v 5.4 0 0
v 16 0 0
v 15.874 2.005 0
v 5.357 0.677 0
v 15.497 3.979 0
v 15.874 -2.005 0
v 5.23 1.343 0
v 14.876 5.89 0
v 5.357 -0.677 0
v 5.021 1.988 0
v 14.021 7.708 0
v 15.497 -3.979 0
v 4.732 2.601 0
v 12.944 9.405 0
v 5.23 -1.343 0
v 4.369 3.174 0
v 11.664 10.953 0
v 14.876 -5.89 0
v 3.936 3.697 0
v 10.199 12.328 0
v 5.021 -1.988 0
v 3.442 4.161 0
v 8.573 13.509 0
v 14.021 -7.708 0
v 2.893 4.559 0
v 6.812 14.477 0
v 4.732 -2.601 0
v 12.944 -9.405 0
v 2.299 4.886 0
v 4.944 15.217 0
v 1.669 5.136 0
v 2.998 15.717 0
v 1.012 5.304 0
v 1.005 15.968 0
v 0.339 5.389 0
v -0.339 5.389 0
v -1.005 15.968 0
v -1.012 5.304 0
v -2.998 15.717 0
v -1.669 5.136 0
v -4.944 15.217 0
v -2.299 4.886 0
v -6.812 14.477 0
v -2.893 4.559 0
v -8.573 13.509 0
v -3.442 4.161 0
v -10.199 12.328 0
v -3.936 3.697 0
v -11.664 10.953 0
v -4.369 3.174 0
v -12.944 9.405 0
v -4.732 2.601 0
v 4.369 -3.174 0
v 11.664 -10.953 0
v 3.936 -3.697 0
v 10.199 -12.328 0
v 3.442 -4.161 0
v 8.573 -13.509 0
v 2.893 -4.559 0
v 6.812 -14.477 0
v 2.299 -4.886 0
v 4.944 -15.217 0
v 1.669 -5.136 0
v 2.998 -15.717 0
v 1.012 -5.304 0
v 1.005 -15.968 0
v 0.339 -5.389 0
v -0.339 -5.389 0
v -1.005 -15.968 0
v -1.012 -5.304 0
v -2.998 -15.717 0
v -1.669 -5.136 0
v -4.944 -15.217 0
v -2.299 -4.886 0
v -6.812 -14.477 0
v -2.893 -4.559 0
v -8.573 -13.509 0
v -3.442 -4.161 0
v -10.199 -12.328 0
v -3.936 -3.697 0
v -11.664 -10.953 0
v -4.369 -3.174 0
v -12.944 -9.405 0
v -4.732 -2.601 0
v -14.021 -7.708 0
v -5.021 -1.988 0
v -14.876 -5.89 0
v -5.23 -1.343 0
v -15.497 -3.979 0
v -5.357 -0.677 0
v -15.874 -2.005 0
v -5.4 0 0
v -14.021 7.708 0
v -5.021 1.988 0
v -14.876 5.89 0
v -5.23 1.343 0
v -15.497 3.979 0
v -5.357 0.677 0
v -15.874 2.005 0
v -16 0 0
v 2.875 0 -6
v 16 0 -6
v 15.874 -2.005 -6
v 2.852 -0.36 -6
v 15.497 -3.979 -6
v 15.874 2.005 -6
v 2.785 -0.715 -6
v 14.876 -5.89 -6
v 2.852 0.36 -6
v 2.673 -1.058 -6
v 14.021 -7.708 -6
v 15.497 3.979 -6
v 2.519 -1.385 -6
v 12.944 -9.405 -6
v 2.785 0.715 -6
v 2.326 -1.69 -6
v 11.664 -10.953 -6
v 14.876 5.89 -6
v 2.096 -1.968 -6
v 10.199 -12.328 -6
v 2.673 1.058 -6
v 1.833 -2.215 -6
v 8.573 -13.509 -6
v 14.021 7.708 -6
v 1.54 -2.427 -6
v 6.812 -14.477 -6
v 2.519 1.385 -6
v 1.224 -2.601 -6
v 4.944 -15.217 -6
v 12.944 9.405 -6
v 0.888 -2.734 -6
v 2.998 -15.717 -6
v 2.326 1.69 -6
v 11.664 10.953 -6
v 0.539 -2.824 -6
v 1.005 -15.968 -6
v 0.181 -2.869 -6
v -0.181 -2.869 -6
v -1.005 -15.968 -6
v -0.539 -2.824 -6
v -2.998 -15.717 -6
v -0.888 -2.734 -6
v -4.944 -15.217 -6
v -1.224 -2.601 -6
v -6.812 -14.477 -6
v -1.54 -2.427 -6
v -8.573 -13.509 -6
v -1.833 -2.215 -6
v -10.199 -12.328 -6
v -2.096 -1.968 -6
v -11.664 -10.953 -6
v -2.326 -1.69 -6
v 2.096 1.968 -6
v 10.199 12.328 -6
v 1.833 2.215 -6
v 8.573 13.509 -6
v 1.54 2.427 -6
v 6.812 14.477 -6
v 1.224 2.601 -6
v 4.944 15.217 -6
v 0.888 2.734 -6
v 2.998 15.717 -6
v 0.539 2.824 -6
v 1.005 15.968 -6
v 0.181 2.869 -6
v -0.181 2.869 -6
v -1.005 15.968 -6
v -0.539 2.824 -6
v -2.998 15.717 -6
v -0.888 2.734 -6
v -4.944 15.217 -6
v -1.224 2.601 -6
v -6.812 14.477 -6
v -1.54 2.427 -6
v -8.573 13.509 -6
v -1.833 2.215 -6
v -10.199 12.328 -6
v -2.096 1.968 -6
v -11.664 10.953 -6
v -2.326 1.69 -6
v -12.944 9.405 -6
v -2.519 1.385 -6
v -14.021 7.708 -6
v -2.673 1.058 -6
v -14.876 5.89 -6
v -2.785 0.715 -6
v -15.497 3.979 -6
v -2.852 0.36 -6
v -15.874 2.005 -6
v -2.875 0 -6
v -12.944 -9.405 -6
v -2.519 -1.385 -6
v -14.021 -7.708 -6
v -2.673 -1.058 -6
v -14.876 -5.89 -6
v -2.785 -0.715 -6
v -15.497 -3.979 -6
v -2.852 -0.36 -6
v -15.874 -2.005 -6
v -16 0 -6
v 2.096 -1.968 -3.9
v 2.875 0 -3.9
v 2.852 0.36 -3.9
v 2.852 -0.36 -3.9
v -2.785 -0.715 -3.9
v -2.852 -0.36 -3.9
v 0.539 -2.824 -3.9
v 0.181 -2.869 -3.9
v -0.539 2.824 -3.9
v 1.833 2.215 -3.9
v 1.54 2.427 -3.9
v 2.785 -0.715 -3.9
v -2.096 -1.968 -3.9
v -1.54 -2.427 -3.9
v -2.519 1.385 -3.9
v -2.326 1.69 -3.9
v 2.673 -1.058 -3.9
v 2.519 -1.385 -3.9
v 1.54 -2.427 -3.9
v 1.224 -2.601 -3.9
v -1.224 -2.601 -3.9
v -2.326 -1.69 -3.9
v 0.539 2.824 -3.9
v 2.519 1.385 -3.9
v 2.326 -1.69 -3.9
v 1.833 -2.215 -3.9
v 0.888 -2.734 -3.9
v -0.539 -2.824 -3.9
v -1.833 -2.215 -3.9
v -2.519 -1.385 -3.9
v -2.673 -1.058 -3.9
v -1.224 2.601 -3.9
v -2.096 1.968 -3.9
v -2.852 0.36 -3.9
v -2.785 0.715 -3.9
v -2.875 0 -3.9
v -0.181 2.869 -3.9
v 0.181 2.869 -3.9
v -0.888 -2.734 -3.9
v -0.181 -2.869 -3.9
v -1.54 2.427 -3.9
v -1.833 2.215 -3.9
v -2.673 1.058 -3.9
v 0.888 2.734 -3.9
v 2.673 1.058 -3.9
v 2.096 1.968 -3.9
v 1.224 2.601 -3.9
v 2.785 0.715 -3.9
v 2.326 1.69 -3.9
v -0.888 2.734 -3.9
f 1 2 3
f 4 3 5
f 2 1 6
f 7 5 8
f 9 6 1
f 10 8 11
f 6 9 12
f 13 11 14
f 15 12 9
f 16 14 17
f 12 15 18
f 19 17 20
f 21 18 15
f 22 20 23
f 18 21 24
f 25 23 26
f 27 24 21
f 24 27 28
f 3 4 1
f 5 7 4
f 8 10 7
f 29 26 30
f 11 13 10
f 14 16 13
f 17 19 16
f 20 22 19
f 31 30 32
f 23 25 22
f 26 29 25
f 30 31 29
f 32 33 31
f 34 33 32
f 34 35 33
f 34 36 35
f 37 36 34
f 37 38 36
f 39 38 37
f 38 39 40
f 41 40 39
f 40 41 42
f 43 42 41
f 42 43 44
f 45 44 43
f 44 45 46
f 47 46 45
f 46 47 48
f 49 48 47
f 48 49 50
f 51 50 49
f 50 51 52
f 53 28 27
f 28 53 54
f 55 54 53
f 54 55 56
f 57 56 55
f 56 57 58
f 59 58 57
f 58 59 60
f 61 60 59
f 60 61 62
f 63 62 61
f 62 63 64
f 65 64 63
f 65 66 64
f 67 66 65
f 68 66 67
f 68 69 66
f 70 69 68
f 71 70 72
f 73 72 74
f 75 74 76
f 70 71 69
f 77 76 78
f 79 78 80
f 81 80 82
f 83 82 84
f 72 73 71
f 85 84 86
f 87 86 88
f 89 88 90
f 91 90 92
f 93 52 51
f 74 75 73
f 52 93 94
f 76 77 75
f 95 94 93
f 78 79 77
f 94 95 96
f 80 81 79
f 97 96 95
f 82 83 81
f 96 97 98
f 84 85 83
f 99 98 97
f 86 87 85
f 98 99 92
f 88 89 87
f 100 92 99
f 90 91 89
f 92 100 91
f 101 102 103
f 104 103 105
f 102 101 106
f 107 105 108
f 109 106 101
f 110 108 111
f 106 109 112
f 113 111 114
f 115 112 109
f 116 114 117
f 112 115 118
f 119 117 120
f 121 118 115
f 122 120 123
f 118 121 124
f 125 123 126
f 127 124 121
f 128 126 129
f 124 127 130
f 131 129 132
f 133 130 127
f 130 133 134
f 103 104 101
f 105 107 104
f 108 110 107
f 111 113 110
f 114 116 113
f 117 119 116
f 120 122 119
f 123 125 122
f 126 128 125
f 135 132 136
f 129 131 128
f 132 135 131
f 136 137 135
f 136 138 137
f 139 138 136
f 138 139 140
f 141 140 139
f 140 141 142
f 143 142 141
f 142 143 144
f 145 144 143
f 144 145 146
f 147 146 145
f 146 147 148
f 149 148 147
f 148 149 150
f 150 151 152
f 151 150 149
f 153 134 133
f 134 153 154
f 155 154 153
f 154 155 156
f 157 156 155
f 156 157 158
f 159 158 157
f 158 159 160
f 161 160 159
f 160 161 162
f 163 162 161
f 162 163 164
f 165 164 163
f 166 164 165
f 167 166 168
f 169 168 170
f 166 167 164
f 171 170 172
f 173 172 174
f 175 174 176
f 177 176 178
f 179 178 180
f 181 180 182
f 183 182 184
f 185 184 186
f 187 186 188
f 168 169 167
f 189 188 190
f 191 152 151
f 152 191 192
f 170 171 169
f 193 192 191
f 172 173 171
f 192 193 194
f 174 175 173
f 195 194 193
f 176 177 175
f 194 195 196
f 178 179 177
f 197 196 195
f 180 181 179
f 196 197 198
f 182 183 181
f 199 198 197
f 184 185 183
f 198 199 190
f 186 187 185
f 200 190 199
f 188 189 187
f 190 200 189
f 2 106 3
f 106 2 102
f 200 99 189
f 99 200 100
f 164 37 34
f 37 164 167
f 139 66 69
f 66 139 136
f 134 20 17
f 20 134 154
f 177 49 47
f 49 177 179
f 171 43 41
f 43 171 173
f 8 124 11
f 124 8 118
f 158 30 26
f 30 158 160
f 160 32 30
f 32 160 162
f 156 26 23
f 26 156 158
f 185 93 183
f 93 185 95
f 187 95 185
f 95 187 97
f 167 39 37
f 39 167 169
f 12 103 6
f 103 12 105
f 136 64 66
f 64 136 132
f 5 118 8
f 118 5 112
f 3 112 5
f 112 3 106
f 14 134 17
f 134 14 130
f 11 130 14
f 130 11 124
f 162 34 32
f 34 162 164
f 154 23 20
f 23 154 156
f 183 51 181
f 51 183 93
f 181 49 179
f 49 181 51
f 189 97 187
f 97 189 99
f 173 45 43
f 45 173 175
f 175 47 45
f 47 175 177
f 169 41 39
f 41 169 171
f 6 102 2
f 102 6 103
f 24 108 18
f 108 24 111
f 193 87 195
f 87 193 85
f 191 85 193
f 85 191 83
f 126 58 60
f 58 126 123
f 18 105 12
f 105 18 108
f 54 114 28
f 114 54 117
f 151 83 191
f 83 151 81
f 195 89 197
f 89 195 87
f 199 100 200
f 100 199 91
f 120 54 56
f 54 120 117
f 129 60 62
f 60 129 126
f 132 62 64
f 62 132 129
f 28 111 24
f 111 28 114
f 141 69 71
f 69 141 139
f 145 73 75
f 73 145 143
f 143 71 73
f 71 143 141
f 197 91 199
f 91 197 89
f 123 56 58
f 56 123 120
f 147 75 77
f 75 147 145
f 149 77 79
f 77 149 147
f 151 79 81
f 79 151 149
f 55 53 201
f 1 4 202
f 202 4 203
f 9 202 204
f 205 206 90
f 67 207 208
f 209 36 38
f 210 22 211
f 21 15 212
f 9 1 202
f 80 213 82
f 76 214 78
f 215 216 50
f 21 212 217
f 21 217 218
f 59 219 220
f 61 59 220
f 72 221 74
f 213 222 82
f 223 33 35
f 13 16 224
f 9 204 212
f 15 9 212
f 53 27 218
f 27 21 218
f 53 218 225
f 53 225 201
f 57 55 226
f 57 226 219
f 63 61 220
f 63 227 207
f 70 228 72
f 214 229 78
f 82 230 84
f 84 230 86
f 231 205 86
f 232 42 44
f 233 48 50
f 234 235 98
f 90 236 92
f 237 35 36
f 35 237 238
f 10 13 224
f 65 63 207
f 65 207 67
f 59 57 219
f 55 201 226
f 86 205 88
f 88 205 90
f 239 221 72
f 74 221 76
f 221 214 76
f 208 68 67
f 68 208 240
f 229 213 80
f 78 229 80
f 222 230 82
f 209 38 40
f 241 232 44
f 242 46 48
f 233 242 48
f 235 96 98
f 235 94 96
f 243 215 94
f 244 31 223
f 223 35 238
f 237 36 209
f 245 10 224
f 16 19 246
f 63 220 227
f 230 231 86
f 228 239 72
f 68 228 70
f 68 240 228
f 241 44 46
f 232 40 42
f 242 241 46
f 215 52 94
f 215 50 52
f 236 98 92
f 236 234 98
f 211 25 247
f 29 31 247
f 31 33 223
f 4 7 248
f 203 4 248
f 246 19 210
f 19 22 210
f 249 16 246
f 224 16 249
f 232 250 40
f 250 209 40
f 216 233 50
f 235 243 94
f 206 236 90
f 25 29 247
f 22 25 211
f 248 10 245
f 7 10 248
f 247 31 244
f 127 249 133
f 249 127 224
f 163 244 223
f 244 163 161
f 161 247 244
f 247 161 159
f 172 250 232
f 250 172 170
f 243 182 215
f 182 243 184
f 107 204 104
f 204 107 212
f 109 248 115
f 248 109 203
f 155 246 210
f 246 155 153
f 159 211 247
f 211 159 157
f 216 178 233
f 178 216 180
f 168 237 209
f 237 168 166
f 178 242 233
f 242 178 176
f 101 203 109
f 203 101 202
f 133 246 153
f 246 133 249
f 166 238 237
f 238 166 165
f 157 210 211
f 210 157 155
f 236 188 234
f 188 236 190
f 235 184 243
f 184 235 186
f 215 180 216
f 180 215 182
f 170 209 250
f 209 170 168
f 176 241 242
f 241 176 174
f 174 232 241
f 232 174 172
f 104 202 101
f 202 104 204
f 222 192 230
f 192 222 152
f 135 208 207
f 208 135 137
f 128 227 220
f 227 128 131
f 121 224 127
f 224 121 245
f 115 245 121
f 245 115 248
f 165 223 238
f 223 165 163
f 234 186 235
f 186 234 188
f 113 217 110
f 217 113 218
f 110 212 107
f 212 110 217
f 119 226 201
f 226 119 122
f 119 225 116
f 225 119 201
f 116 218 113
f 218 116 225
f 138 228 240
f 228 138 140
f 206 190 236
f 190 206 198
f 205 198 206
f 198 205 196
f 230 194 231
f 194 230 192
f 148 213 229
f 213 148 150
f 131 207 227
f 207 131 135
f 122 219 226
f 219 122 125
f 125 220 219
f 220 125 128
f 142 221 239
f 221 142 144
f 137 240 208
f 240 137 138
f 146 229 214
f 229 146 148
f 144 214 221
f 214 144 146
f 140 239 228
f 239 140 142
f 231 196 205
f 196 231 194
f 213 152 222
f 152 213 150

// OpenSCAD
$fn = 50;


difference() {
	union() {
		translate(v = [0, 0, -6.0000000000]) {
			cylinder(h = 6, r = 10.0000000000);
		}
		translate(v = [0, 0, -6.0000000000]) {
			cylinder(h = 6, r = 16.0000000000);
		}
	}
	union() {
		translate(v = [0, 0, 0]) {
			rotate(a = [0, 0, 0]) {
				difference() {
					union() {
						#translate(v = [0, 0, -6.0000000000]) {
							cylinder(h = 6, r = 2.6000000000);
						}
						#translate(v = [0, 0, -3.9000000000]) {
							cylinder(h = 3.9000000000, r = 10.0000000000, r1 = 2.8750000000, r2 = 5.4000000000);
						}
						#translate(v = [0, 0, -6.0000000000]) {
							cylinder(h = 6, r = 2.8750000000);
						}
						#translate(v = [0, 0, -6.0000000000]) {
							cylinder(h = 6, r = 2.6000000000);
						}
					}
					union();
				}
			}
		}
	}
}
